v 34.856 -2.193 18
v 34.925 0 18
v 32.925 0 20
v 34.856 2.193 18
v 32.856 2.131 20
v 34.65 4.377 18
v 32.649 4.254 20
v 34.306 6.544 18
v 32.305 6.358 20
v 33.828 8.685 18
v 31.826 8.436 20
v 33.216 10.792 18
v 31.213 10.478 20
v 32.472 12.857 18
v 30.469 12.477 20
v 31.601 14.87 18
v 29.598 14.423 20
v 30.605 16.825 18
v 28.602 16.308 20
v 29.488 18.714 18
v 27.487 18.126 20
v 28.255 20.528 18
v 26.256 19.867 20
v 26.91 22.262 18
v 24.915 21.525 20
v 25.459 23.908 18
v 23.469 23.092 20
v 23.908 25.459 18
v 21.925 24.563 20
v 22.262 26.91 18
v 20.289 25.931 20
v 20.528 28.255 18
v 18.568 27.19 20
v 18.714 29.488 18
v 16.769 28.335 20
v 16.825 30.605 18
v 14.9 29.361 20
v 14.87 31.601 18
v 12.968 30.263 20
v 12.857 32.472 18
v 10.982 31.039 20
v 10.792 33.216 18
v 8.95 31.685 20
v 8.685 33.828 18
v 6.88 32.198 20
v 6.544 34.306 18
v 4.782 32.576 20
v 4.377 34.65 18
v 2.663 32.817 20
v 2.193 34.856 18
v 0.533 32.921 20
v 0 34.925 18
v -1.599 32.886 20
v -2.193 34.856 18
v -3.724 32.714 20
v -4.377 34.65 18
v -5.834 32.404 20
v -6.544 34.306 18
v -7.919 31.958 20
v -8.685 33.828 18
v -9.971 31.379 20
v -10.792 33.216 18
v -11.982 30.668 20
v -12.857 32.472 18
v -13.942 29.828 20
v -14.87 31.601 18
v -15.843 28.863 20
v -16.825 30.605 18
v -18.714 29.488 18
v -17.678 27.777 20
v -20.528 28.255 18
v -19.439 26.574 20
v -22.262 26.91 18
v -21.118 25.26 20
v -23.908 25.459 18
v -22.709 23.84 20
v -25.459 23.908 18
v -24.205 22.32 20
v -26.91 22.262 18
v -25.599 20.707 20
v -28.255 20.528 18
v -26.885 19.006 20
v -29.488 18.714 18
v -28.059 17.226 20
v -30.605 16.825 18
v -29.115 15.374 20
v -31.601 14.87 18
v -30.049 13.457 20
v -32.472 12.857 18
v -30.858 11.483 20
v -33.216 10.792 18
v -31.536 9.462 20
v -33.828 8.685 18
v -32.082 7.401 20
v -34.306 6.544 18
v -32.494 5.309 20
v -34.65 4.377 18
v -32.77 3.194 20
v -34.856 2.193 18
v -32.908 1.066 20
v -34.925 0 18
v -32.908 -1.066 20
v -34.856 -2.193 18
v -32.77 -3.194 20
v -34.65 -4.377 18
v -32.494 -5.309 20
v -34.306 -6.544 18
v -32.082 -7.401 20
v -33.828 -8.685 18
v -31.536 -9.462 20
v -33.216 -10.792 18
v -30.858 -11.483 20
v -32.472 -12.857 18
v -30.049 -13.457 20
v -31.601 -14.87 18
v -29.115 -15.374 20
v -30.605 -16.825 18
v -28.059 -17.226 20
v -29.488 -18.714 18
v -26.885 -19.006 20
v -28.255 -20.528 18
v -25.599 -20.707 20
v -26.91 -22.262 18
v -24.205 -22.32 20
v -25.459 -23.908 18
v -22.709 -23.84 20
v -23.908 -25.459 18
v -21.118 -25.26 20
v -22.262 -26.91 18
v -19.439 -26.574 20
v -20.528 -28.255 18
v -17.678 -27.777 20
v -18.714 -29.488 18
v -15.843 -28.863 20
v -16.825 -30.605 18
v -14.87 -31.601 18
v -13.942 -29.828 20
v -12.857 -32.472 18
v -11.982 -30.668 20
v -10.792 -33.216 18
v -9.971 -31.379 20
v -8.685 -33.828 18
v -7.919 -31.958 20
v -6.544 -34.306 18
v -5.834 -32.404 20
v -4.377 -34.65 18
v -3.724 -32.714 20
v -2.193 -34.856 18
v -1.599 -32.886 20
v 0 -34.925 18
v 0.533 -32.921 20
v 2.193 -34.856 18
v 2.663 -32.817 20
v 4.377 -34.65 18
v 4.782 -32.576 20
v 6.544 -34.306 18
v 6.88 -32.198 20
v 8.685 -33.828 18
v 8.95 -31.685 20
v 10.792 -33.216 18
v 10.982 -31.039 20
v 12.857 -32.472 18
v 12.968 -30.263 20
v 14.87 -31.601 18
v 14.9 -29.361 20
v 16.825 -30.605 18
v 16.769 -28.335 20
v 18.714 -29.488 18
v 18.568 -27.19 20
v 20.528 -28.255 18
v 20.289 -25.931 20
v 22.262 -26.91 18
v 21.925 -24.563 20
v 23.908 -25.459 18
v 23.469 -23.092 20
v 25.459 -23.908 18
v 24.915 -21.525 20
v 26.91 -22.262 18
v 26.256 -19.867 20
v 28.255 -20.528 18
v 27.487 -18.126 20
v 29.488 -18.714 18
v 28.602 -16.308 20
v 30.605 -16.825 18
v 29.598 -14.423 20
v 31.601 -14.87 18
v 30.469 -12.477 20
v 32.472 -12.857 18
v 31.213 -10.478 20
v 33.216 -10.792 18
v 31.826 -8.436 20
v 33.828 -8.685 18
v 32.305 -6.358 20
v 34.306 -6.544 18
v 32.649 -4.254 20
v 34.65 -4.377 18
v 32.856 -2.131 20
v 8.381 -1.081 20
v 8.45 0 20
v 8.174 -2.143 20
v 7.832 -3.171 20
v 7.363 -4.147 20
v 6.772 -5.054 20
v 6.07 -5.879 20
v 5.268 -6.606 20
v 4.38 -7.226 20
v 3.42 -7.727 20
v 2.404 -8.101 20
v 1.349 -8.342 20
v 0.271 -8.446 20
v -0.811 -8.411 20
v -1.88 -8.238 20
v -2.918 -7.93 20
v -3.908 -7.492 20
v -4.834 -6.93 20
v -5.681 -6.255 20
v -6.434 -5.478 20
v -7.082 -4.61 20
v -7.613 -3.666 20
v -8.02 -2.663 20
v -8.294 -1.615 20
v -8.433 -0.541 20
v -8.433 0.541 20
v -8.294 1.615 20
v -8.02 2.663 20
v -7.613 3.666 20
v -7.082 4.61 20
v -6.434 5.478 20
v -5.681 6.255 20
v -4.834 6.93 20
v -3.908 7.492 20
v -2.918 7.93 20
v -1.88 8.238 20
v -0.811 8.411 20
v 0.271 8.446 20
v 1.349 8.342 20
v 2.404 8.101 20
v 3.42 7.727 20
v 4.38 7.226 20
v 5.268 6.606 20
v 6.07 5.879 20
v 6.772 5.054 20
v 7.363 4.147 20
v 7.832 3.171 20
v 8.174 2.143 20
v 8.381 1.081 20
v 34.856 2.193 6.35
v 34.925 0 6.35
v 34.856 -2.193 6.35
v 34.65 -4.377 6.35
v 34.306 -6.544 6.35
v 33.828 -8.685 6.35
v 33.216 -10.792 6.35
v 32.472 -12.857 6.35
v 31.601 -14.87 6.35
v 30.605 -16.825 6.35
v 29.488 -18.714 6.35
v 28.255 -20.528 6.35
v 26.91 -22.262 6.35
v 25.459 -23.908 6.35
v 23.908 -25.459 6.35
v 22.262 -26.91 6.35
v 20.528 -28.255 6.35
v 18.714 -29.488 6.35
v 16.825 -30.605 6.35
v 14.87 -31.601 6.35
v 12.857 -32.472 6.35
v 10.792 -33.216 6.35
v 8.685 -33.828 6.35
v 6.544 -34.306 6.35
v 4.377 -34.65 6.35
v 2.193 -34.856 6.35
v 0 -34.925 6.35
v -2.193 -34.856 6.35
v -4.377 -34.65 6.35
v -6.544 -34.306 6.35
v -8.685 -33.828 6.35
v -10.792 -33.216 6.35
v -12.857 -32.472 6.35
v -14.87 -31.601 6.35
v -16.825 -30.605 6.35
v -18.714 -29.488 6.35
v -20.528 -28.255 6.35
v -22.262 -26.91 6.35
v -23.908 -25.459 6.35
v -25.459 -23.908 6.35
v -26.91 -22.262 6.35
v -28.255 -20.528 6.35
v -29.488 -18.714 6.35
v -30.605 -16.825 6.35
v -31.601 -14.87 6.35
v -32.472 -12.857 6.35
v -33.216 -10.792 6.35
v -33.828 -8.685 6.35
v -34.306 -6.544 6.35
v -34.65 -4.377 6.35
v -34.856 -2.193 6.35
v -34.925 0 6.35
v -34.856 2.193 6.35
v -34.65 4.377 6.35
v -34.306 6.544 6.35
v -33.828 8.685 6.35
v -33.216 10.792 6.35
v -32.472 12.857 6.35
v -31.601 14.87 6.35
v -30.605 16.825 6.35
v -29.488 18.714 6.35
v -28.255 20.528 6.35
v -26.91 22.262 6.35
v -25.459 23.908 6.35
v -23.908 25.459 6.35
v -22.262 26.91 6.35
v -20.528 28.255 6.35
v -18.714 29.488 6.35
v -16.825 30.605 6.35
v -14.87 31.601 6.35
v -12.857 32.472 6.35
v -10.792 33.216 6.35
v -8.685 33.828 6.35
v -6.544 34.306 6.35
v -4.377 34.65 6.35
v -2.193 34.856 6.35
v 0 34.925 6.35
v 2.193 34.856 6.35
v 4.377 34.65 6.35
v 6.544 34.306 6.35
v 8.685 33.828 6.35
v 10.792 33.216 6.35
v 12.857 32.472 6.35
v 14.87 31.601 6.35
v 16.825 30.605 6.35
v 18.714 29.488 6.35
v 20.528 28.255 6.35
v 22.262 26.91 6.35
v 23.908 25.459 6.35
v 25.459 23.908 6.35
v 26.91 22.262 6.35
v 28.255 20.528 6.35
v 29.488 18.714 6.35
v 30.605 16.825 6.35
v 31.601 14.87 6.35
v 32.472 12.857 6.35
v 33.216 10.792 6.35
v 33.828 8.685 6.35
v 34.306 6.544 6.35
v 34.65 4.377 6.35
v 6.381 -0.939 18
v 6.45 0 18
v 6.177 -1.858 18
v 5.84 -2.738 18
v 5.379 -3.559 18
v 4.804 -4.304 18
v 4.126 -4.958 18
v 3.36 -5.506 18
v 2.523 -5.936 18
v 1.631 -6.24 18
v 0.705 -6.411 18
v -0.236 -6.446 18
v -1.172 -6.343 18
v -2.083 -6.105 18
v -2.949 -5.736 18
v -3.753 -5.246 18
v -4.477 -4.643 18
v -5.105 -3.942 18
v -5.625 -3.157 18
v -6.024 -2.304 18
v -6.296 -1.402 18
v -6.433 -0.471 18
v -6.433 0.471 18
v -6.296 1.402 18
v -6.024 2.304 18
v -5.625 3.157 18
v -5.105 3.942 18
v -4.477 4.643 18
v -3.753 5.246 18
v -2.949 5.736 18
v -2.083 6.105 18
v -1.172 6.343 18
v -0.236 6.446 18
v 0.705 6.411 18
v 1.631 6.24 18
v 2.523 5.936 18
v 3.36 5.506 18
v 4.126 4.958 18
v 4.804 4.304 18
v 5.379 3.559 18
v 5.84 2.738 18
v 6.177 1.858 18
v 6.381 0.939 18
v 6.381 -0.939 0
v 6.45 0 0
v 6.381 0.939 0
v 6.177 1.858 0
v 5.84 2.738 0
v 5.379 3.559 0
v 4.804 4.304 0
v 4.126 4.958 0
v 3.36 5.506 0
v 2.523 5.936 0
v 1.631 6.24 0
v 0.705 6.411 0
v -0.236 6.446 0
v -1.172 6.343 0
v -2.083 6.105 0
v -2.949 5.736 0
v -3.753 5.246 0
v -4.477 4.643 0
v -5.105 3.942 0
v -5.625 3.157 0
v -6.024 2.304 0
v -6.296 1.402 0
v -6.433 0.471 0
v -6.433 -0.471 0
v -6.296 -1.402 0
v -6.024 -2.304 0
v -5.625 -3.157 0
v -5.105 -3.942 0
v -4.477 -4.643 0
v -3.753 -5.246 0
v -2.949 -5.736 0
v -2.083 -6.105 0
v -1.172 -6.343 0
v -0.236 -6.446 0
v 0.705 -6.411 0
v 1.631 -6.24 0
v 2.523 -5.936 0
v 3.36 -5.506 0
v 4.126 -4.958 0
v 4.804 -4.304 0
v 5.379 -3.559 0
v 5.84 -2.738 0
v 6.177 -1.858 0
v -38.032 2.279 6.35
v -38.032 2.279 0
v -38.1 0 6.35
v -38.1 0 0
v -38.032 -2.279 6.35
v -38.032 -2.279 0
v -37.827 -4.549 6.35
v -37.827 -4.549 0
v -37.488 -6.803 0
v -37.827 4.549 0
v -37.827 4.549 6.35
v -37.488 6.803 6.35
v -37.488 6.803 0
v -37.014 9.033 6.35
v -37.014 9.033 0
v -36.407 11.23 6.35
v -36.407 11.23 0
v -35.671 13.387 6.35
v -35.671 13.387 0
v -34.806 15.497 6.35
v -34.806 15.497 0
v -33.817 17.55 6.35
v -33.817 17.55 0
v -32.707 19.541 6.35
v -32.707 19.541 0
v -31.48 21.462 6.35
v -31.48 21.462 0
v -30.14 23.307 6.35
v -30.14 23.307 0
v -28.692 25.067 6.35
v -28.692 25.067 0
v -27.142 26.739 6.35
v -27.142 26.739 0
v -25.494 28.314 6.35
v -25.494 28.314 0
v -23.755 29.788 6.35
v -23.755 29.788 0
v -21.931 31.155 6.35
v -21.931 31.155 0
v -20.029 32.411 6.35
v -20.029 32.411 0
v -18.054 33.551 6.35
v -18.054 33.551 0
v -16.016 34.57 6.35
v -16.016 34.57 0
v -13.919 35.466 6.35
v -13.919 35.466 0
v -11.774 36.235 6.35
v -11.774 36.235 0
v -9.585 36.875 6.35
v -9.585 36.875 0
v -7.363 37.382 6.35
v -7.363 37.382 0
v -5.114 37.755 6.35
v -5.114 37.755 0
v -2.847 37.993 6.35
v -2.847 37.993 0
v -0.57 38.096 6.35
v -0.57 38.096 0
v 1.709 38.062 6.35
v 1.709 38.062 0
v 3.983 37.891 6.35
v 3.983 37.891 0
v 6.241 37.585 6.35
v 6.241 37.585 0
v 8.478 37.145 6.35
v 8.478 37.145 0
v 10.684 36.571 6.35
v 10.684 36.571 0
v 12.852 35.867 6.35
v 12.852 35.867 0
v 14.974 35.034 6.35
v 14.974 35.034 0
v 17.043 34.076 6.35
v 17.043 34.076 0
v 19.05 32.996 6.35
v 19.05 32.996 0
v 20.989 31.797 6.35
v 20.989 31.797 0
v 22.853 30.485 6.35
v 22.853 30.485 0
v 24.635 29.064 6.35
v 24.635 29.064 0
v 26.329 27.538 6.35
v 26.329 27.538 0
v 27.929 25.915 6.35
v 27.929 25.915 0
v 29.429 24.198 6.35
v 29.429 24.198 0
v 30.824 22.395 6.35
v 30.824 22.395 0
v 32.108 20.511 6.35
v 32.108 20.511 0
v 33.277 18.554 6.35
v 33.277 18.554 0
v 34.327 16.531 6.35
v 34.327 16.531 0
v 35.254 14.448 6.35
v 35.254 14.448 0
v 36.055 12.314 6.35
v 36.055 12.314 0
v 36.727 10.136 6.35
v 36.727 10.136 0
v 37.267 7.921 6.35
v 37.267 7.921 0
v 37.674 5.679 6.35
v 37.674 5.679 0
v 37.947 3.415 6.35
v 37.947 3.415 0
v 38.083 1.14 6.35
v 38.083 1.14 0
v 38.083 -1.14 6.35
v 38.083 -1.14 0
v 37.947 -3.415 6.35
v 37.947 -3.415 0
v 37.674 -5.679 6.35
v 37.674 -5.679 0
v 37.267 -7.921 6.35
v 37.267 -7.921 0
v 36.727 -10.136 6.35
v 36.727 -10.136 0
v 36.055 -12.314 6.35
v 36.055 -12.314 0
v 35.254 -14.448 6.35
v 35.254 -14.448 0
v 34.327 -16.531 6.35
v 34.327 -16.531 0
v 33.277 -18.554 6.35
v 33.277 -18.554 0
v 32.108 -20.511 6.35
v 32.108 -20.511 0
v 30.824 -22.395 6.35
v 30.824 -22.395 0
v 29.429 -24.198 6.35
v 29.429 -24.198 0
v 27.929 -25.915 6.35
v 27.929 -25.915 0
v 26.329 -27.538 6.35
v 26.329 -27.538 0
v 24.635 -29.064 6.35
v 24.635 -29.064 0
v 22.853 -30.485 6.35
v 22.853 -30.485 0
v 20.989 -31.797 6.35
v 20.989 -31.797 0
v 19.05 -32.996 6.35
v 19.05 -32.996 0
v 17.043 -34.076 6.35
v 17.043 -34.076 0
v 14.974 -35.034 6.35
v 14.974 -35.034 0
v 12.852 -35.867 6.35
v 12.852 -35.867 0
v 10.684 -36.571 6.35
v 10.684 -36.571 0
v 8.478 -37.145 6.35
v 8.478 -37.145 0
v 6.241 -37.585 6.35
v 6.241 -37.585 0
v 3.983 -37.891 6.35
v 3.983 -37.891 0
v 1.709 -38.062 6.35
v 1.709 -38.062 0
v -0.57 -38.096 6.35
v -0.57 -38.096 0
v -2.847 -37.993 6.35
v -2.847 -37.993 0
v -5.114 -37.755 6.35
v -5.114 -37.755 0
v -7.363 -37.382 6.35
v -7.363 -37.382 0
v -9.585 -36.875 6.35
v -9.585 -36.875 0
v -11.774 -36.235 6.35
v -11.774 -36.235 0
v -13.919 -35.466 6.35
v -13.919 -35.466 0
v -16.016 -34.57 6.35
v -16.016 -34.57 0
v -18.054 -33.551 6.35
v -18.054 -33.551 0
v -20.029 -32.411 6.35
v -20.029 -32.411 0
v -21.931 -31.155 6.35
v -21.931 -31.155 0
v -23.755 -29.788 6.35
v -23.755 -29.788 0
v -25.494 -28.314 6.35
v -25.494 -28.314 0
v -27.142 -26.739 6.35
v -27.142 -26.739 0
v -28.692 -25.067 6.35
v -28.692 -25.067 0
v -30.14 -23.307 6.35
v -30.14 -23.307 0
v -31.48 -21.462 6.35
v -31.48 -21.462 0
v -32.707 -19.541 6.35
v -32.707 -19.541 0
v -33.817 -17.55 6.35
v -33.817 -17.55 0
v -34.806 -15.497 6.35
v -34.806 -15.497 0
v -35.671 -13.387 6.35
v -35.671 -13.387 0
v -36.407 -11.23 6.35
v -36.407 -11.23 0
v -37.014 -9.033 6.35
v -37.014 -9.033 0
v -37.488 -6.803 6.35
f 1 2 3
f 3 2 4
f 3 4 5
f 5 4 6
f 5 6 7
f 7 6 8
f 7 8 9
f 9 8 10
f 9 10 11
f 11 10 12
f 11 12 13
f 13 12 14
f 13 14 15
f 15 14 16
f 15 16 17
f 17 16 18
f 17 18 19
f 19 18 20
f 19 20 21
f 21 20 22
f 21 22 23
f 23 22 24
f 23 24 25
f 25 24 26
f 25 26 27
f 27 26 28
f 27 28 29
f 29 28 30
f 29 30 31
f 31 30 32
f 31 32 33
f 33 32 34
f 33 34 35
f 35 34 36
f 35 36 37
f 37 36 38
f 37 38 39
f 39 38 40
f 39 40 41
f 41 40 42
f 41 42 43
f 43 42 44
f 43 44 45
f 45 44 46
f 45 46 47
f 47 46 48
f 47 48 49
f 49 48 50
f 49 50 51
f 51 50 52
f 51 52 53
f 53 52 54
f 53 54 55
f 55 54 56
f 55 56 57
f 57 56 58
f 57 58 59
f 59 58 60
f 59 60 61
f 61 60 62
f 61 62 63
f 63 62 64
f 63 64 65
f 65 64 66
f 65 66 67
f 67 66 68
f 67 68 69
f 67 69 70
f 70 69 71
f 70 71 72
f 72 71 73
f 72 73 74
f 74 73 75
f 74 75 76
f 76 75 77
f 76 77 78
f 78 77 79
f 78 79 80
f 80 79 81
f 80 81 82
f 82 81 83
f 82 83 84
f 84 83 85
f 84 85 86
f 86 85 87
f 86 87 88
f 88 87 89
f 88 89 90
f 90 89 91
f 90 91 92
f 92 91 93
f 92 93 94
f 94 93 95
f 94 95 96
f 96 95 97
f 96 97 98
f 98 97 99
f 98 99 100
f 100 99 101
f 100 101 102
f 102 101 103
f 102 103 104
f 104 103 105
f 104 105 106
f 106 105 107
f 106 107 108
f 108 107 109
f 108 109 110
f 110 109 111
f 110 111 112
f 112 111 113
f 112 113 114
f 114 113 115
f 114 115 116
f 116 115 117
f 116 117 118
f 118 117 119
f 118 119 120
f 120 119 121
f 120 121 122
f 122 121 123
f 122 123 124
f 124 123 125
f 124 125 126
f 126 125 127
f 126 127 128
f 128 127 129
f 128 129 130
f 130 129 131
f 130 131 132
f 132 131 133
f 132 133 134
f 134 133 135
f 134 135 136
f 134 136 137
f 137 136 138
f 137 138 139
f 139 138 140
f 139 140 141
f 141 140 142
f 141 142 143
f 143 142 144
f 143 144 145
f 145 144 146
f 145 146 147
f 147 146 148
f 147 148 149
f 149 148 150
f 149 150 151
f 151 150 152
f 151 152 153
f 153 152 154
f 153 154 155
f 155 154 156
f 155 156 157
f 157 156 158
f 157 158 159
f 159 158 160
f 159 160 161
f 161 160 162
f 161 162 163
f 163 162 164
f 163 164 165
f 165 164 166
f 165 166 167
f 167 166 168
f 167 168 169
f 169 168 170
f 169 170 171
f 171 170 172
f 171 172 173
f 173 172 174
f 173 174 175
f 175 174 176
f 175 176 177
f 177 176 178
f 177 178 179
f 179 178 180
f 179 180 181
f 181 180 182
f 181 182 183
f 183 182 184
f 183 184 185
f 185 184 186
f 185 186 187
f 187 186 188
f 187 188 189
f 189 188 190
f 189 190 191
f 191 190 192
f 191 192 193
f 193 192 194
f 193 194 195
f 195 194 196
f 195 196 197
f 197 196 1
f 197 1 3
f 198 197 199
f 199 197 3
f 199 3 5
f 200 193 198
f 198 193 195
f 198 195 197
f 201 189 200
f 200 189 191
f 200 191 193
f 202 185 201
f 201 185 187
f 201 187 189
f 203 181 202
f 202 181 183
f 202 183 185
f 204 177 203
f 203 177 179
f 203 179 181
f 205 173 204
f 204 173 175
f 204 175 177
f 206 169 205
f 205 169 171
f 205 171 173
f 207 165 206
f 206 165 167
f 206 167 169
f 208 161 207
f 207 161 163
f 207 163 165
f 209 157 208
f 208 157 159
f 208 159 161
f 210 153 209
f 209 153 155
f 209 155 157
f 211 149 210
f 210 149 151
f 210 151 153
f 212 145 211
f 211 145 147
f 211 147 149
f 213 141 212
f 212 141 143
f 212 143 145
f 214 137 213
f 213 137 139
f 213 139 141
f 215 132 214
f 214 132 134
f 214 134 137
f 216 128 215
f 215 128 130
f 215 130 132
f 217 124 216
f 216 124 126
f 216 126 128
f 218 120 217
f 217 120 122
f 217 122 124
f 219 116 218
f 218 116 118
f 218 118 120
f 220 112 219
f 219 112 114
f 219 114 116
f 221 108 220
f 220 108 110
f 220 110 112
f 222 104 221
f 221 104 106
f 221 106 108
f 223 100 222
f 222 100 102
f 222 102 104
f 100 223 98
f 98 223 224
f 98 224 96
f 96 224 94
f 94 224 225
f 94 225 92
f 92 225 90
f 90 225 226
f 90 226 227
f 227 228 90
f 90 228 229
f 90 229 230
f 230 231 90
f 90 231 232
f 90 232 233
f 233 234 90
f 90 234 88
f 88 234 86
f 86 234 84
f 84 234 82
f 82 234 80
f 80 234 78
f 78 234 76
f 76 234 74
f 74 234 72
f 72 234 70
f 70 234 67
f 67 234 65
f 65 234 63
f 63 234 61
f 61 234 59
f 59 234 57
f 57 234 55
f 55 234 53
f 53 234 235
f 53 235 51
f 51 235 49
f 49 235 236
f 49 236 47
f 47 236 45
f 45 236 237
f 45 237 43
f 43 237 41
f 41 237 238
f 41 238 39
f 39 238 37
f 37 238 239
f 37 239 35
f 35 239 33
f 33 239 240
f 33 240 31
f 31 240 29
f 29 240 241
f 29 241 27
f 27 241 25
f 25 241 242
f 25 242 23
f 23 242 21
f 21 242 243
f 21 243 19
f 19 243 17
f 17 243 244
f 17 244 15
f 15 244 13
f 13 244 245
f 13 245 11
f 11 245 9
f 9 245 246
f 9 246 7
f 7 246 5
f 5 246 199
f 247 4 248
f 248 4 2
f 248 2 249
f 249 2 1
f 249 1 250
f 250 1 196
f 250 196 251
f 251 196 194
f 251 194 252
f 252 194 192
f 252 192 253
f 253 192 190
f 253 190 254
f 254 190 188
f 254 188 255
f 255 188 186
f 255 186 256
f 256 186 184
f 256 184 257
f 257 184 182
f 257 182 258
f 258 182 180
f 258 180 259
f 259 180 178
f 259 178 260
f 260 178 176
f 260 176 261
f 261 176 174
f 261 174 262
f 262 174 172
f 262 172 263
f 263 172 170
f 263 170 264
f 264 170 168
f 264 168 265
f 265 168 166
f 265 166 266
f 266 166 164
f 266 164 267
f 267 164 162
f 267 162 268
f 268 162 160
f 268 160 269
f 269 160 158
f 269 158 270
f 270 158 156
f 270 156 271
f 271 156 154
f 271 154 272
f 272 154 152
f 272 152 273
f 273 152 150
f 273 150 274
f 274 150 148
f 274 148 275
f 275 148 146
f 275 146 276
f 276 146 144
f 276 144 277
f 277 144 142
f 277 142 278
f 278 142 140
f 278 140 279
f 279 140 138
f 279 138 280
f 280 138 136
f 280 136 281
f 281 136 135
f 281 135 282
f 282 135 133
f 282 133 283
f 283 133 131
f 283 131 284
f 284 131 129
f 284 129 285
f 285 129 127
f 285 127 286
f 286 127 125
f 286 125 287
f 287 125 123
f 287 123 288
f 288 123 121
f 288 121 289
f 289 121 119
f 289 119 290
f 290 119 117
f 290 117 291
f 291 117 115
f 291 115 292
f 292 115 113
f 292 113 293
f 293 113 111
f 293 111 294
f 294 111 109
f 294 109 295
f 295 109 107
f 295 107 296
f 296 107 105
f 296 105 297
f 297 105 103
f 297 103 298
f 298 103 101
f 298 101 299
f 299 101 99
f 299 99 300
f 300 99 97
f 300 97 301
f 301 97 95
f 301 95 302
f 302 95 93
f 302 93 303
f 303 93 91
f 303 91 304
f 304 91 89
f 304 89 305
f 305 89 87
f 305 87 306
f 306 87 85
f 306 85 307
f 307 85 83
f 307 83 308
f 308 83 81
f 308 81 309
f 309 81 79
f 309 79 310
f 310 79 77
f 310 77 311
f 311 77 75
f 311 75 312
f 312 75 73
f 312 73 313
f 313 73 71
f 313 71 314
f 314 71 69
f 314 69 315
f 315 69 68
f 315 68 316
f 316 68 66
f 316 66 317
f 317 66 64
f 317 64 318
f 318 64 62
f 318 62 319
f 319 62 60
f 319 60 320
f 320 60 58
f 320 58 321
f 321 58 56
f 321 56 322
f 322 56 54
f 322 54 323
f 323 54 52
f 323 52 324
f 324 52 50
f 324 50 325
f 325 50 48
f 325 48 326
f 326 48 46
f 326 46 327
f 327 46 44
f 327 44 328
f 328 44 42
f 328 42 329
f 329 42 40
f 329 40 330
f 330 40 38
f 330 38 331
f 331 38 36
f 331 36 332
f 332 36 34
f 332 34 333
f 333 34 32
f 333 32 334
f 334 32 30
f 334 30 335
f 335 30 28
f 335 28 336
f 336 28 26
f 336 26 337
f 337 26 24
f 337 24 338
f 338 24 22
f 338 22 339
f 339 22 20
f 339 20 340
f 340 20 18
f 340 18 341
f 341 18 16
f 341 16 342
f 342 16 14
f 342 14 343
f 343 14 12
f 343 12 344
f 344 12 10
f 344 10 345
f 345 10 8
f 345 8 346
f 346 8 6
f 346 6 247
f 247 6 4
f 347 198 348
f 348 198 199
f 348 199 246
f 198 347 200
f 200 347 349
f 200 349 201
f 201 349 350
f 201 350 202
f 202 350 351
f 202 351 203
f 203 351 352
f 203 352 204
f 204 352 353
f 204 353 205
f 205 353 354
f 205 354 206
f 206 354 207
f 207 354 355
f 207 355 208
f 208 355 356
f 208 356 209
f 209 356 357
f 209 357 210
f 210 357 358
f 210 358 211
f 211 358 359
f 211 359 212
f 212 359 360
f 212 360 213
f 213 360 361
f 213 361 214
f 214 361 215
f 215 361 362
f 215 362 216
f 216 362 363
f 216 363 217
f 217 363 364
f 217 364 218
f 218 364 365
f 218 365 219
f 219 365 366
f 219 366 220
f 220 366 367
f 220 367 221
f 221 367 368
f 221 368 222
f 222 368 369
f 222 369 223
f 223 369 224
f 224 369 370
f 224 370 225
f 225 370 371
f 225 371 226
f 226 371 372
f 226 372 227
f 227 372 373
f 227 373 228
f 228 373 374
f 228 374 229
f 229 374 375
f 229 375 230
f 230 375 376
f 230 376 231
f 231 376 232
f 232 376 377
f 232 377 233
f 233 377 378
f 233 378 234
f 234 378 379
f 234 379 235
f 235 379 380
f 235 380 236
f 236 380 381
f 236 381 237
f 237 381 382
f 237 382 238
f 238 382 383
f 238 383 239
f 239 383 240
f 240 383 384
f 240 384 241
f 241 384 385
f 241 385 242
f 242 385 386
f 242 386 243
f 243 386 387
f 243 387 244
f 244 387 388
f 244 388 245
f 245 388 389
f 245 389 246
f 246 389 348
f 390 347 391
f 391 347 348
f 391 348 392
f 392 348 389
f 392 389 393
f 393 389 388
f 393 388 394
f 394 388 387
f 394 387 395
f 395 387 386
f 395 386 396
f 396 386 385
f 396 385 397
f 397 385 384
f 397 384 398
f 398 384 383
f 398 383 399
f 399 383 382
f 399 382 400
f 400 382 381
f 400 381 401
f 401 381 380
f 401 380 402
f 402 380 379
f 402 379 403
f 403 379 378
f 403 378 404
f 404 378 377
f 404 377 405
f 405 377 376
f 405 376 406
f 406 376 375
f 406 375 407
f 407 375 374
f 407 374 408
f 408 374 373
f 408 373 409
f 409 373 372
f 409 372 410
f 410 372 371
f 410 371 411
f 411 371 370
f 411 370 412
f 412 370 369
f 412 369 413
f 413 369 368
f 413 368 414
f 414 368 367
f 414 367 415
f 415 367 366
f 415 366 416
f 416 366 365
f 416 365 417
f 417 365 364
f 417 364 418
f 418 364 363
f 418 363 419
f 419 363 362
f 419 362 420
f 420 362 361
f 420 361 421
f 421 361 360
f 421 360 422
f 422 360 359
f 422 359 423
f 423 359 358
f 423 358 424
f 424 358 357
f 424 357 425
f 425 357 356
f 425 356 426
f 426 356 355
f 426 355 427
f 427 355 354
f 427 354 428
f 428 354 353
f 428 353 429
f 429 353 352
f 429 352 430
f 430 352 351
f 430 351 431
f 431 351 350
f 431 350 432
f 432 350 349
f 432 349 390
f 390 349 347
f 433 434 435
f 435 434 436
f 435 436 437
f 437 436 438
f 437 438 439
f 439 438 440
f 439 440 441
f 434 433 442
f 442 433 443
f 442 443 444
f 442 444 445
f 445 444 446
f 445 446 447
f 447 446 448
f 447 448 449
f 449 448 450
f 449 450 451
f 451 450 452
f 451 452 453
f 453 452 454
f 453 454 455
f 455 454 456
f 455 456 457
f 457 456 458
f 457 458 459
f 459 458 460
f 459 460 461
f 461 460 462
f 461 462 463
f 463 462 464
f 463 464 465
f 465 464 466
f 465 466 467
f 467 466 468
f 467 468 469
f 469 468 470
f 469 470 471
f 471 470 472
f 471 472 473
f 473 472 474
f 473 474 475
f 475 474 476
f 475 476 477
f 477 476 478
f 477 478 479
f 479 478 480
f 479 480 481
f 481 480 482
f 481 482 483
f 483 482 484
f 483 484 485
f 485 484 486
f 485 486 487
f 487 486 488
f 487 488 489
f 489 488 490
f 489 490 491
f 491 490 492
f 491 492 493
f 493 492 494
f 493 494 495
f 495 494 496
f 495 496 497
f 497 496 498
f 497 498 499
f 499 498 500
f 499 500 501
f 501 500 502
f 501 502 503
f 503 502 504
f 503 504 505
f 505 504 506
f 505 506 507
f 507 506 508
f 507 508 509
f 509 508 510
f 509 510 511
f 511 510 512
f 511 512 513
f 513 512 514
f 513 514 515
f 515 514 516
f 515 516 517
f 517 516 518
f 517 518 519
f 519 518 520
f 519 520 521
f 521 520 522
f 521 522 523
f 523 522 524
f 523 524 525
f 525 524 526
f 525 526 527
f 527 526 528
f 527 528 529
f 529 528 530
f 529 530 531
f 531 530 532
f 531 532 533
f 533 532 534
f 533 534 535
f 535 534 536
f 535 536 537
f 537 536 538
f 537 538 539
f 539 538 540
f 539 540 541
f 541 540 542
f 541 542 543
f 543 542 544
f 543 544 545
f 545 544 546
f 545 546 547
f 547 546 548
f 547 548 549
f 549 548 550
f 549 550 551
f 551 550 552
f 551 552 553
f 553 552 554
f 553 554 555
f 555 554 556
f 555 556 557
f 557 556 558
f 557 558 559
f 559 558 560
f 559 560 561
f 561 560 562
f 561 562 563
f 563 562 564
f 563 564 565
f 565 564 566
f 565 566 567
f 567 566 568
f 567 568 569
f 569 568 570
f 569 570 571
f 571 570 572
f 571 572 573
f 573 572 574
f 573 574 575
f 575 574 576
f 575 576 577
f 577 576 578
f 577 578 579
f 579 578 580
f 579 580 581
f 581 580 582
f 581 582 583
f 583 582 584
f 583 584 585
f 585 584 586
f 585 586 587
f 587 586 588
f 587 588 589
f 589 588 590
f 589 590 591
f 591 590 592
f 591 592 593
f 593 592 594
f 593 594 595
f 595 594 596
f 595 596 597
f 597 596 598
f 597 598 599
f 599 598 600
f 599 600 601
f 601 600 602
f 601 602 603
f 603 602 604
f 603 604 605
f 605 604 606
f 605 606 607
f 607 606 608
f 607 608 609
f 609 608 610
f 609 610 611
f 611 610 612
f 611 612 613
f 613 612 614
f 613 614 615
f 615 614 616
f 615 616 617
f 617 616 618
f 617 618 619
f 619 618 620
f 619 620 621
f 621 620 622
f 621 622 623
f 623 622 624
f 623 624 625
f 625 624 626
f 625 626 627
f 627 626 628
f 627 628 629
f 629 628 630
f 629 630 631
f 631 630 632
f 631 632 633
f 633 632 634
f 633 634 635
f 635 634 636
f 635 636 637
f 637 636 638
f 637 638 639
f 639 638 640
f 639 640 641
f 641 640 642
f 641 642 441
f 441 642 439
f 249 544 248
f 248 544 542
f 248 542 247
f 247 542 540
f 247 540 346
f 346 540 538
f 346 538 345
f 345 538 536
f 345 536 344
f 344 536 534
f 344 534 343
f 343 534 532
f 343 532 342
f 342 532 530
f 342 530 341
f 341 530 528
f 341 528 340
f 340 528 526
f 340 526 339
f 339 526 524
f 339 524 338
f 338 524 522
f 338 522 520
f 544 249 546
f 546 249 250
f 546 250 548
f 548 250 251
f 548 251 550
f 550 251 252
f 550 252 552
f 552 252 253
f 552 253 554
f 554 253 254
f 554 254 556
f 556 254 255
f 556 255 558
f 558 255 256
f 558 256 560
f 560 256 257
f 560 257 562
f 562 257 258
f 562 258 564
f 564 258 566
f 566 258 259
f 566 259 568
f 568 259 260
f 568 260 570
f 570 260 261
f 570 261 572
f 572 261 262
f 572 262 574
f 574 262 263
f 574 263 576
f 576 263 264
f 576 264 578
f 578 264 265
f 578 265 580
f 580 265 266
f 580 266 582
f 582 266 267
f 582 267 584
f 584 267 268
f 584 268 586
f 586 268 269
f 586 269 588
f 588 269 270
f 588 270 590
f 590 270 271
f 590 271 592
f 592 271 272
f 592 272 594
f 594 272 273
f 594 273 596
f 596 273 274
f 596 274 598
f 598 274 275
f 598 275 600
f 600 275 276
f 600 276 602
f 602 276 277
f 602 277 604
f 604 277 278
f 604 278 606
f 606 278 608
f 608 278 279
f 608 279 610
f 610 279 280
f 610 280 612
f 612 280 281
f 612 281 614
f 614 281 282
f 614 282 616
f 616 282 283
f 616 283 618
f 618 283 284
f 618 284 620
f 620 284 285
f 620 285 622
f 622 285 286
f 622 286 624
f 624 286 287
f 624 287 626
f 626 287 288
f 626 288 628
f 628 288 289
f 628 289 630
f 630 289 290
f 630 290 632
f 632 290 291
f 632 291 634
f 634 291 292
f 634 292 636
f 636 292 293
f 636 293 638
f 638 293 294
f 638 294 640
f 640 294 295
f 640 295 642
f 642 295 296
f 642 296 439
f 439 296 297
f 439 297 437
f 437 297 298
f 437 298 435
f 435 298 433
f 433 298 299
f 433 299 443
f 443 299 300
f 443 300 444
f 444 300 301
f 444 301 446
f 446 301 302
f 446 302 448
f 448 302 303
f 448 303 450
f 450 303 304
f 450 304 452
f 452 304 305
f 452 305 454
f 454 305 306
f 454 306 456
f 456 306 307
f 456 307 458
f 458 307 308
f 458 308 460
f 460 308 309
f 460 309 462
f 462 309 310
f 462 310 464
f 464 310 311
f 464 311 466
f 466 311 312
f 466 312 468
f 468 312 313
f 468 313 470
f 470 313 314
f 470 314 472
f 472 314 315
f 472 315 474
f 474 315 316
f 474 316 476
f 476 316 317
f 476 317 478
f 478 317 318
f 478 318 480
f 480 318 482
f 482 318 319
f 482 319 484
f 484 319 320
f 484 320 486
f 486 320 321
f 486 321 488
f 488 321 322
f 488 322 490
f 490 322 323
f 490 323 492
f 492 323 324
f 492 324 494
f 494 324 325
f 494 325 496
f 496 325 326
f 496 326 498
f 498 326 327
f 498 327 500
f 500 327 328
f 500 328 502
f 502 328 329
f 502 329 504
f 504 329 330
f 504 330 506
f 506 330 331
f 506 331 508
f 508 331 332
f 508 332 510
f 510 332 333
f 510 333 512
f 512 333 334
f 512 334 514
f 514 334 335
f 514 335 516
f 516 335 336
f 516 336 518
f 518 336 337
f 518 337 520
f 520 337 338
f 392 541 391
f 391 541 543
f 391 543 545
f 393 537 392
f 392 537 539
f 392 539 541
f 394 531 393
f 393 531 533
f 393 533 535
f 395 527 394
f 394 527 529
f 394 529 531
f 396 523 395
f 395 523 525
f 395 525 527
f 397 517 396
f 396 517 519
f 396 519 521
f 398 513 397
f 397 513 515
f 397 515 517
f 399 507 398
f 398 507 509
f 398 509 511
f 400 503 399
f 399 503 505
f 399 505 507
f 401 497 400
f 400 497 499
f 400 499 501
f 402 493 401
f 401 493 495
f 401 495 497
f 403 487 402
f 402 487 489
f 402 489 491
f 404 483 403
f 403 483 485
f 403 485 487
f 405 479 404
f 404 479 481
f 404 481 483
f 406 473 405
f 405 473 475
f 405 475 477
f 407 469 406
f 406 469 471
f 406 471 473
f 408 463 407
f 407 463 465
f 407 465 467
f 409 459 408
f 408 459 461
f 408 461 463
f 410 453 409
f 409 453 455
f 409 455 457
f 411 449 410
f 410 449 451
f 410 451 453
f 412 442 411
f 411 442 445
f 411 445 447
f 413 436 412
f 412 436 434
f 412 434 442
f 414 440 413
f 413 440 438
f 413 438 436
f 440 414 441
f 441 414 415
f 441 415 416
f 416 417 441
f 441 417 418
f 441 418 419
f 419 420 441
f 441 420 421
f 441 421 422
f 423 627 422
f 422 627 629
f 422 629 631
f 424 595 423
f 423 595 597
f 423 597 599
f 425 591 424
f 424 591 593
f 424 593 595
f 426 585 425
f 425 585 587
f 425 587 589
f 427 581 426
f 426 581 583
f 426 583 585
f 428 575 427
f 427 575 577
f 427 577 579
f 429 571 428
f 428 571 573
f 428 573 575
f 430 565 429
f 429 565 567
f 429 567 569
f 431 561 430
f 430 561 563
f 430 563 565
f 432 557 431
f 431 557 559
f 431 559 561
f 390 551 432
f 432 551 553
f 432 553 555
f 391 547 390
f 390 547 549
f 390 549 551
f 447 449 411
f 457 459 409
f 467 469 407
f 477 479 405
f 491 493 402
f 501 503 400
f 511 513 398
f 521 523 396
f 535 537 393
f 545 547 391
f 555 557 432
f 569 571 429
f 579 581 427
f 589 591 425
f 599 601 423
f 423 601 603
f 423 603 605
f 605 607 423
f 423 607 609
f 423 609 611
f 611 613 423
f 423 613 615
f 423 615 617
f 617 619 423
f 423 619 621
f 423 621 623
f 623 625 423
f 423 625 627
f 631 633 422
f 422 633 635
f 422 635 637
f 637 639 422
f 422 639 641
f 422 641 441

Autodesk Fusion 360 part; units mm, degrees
sketch "Roller_End_Cap_Outter" plane through (0, 0, 0) normal (0, 0, 1) x (1, 0, 0)
  circle A0 centre (0, 0) radius 38.1
  dimension "d2" = 76.2
extrude "Extrude1" add sketch "Roller_End_Cap_Outter" along normal blind 6.35
sketch "Roller_End_Cap_Inner" plane through (0, 0, 6.35) normal (0, 0, 1) x (-1, 0, 0)
  circle A0 centre (0, 0) radius 38.1
  circle A1 centre (0, 0) radius 34.925
  dimension "d7" = 69.85
extrude "Extrude3" add sketch "Roller_End_Cap_Inner" along normal blind 10 contours A1
sketch "Shaft Hole" plane through (0, 0, 16.35) normal (0, 0, 1) x (-1, 0, 0)
  circle A0 centre (0, 0) radius 34.925
  circle A1 centre (0, 0) radius 6.45
  dimension "d10" = 12.9
extrude "Extrude4" cut sketch "Shaft Hole" against normal through all contours A1
extrude "Extrude5" add 1 faces at (-25.3033, 1.7351, 16.35) along direction (0, 0, 1) blind 3.65
chamfer "Chamfer1" distance 2 angle 45 1 edges at (6.0135, -2.3324, 20)
chamfer "Chamfer2" distance 2 angle 45 1 edges at (32.5615, 12.6294, 20)
